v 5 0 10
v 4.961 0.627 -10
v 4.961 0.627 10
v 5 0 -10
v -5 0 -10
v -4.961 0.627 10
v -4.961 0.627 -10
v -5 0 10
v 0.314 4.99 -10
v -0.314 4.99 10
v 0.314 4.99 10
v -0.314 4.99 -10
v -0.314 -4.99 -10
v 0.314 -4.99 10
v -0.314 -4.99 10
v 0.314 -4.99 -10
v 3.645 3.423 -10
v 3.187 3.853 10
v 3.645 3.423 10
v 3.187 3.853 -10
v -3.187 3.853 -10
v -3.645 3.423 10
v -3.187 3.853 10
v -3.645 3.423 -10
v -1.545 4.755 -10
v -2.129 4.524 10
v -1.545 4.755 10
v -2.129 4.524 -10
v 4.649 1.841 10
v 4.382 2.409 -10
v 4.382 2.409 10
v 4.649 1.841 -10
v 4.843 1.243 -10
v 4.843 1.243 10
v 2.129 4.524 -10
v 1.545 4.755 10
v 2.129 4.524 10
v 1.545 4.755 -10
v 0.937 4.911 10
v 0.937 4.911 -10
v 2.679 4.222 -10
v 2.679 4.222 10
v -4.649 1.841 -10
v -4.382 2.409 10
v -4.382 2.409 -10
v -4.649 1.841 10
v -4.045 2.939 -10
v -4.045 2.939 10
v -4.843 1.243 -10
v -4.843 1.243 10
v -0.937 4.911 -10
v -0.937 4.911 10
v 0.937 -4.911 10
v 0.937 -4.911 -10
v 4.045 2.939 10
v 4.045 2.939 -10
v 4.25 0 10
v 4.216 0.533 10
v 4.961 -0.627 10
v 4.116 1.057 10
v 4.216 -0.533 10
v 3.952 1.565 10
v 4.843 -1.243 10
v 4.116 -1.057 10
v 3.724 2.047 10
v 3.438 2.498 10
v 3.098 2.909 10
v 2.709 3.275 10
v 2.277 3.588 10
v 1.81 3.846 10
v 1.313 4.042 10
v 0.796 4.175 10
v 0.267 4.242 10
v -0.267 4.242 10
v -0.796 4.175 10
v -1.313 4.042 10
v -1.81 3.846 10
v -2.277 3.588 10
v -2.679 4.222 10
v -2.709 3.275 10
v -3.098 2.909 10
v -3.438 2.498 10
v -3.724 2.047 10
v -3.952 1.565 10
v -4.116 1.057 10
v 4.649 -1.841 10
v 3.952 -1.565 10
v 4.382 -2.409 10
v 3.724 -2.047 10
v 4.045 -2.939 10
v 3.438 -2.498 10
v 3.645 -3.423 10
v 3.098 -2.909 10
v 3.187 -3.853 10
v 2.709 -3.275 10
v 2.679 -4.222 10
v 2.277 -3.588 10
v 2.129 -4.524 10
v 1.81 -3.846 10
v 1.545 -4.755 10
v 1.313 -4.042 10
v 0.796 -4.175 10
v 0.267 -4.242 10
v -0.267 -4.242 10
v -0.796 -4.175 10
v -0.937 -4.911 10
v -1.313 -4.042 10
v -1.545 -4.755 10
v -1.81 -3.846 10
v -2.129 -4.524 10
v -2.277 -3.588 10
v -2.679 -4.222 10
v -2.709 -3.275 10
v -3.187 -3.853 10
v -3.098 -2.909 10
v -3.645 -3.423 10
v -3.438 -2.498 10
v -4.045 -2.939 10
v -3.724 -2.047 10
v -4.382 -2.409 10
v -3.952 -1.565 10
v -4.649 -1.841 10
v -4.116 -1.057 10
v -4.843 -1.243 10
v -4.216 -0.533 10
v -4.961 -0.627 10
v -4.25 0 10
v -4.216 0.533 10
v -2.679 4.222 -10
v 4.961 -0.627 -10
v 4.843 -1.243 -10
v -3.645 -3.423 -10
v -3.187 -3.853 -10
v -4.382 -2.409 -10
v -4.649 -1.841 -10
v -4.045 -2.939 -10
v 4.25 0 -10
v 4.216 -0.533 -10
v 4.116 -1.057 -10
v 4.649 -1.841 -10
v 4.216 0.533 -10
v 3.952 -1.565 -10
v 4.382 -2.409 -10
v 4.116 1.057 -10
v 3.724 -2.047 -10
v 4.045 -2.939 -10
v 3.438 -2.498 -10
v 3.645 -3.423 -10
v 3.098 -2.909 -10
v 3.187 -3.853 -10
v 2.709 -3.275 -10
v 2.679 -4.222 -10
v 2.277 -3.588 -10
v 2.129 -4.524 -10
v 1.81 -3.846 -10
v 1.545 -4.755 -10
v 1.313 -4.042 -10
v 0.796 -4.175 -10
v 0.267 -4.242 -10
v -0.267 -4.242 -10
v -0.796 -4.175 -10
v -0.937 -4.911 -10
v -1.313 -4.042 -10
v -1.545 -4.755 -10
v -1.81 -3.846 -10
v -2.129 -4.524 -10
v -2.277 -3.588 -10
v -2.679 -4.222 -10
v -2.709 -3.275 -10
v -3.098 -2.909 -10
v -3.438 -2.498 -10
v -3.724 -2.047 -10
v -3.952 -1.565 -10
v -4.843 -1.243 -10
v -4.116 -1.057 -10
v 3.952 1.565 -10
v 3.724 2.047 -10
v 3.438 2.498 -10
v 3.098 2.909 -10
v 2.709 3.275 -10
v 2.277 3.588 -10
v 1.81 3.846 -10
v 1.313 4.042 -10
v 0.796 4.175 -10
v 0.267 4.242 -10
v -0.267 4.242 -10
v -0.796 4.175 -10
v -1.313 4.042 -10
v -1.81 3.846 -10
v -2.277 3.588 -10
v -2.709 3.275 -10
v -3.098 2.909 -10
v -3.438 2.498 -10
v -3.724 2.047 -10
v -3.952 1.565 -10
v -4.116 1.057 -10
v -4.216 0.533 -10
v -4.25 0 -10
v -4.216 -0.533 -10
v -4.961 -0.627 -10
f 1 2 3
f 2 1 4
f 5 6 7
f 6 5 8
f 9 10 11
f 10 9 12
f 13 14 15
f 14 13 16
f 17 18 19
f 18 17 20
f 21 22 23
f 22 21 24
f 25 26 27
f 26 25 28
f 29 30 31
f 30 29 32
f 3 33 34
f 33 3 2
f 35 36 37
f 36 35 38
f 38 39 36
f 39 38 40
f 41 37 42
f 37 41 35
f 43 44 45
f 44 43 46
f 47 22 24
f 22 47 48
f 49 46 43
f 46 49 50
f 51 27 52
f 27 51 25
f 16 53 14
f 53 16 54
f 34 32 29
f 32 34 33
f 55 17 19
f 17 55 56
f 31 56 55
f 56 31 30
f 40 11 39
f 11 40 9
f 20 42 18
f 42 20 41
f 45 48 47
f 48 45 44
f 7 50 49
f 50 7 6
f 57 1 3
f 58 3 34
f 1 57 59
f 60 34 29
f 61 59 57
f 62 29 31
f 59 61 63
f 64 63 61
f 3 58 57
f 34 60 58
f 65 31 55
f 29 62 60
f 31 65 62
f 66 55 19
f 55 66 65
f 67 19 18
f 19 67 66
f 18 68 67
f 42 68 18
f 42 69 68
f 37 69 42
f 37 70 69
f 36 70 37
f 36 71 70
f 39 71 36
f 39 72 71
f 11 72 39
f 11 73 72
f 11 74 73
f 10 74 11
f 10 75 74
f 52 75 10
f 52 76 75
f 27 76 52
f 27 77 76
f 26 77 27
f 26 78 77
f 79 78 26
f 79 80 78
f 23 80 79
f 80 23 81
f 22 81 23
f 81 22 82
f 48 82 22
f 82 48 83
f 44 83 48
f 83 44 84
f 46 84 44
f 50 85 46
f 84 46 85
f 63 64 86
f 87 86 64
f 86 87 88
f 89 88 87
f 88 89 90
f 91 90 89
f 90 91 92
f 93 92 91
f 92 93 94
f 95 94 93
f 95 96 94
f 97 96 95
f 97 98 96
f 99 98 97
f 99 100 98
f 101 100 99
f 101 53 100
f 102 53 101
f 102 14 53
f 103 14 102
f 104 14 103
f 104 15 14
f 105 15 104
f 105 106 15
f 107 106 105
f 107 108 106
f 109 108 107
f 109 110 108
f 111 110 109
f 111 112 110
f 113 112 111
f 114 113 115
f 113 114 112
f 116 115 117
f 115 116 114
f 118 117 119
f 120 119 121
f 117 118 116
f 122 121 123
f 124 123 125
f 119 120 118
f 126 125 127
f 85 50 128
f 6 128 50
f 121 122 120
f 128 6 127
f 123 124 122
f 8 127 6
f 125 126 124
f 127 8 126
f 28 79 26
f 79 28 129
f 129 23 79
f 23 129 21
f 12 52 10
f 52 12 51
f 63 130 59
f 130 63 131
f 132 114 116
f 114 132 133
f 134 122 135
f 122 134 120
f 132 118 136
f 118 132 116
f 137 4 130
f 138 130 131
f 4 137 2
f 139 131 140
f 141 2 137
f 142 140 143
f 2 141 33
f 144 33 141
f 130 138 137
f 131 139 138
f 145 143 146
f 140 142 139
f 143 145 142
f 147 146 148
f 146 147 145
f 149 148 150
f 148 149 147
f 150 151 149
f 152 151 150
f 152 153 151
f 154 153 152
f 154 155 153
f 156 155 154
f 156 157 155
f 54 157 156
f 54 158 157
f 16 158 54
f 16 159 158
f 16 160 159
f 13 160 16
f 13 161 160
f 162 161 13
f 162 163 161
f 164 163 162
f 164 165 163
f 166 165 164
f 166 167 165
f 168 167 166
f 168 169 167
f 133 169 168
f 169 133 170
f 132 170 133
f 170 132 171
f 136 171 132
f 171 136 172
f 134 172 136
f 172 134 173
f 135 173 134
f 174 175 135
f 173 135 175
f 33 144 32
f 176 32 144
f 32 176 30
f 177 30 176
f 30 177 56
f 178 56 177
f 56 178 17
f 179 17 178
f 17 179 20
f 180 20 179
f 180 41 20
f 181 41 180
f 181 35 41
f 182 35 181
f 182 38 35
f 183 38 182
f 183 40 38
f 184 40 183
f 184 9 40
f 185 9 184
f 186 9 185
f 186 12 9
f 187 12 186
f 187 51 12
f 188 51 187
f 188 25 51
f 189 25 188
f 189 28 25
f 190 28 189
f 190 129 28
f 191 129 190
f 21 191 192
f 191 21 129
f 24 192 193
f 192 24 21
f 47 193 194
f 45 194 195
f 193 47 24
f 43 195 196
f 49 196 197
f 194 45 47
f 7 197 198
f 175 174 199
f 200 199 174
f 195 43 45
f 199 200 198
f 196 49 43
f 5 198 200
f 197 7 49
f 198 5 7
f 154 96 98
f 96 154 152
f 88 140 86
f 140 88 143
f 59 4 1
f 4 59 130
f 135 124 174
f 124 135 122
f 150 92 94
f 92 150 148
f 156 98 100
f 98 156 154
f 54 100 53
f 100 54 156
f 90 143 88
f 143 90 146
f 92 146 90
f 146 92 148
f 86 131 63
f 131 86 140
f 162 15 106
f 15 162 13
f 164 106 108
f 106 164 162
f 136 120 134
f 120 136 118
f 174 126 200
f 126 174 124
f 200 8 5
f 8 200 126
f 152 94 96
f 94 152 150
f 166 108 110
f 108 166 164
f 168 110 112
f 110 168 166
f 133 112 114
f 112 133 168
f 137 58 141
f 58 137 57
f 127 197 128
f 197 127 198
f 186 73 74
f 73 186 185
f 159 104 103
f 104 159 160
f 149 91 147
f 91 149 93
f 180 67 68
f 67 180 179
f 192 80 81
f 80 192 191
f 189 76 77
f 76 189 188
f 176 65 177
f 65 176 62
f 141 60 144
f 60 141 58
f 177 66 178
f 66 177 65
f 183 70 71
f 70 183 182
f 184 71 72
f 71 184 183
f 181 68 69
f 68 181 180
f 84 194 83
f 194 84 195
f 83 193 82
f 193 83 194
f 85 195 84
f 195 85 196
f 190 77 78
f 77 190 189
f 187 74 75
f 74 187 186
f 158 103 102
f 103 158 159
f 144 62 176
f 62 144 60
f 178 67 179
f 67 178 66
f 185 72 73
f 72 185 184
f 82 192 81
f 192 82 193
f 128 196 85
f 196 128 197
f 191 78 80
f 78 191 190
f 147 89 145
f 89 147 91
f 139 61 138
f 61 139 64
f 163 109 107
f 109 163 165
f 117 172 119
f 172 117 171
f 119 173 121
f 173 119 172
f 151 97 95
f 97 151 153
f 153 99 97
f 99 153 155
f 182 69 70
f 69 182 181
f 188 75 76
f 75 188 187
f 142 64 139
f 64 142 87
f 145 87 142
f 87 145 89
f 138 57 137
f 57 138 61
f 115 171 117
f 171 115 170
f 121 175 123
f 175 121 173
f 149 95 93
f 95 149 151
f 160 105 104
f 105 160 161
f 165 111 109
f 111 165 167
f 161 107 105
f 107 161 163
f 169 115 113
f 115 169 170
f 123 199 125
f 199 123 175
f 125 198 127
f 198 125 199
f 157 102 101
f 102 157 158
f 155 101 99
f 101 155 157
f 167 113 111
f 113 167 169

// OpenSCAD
$fn = 50;


difference() {
	union() {
		translate(v = [0, 0, -10.0000000000]) {
			cylinder(h = 20, r = 5.0000000000);
		}
	}
	union() {
		translate(v = [0, 0, -100.0000000000]) {
			cylinder(h = 200, r = 4.2500000000);
		}
	}
}
